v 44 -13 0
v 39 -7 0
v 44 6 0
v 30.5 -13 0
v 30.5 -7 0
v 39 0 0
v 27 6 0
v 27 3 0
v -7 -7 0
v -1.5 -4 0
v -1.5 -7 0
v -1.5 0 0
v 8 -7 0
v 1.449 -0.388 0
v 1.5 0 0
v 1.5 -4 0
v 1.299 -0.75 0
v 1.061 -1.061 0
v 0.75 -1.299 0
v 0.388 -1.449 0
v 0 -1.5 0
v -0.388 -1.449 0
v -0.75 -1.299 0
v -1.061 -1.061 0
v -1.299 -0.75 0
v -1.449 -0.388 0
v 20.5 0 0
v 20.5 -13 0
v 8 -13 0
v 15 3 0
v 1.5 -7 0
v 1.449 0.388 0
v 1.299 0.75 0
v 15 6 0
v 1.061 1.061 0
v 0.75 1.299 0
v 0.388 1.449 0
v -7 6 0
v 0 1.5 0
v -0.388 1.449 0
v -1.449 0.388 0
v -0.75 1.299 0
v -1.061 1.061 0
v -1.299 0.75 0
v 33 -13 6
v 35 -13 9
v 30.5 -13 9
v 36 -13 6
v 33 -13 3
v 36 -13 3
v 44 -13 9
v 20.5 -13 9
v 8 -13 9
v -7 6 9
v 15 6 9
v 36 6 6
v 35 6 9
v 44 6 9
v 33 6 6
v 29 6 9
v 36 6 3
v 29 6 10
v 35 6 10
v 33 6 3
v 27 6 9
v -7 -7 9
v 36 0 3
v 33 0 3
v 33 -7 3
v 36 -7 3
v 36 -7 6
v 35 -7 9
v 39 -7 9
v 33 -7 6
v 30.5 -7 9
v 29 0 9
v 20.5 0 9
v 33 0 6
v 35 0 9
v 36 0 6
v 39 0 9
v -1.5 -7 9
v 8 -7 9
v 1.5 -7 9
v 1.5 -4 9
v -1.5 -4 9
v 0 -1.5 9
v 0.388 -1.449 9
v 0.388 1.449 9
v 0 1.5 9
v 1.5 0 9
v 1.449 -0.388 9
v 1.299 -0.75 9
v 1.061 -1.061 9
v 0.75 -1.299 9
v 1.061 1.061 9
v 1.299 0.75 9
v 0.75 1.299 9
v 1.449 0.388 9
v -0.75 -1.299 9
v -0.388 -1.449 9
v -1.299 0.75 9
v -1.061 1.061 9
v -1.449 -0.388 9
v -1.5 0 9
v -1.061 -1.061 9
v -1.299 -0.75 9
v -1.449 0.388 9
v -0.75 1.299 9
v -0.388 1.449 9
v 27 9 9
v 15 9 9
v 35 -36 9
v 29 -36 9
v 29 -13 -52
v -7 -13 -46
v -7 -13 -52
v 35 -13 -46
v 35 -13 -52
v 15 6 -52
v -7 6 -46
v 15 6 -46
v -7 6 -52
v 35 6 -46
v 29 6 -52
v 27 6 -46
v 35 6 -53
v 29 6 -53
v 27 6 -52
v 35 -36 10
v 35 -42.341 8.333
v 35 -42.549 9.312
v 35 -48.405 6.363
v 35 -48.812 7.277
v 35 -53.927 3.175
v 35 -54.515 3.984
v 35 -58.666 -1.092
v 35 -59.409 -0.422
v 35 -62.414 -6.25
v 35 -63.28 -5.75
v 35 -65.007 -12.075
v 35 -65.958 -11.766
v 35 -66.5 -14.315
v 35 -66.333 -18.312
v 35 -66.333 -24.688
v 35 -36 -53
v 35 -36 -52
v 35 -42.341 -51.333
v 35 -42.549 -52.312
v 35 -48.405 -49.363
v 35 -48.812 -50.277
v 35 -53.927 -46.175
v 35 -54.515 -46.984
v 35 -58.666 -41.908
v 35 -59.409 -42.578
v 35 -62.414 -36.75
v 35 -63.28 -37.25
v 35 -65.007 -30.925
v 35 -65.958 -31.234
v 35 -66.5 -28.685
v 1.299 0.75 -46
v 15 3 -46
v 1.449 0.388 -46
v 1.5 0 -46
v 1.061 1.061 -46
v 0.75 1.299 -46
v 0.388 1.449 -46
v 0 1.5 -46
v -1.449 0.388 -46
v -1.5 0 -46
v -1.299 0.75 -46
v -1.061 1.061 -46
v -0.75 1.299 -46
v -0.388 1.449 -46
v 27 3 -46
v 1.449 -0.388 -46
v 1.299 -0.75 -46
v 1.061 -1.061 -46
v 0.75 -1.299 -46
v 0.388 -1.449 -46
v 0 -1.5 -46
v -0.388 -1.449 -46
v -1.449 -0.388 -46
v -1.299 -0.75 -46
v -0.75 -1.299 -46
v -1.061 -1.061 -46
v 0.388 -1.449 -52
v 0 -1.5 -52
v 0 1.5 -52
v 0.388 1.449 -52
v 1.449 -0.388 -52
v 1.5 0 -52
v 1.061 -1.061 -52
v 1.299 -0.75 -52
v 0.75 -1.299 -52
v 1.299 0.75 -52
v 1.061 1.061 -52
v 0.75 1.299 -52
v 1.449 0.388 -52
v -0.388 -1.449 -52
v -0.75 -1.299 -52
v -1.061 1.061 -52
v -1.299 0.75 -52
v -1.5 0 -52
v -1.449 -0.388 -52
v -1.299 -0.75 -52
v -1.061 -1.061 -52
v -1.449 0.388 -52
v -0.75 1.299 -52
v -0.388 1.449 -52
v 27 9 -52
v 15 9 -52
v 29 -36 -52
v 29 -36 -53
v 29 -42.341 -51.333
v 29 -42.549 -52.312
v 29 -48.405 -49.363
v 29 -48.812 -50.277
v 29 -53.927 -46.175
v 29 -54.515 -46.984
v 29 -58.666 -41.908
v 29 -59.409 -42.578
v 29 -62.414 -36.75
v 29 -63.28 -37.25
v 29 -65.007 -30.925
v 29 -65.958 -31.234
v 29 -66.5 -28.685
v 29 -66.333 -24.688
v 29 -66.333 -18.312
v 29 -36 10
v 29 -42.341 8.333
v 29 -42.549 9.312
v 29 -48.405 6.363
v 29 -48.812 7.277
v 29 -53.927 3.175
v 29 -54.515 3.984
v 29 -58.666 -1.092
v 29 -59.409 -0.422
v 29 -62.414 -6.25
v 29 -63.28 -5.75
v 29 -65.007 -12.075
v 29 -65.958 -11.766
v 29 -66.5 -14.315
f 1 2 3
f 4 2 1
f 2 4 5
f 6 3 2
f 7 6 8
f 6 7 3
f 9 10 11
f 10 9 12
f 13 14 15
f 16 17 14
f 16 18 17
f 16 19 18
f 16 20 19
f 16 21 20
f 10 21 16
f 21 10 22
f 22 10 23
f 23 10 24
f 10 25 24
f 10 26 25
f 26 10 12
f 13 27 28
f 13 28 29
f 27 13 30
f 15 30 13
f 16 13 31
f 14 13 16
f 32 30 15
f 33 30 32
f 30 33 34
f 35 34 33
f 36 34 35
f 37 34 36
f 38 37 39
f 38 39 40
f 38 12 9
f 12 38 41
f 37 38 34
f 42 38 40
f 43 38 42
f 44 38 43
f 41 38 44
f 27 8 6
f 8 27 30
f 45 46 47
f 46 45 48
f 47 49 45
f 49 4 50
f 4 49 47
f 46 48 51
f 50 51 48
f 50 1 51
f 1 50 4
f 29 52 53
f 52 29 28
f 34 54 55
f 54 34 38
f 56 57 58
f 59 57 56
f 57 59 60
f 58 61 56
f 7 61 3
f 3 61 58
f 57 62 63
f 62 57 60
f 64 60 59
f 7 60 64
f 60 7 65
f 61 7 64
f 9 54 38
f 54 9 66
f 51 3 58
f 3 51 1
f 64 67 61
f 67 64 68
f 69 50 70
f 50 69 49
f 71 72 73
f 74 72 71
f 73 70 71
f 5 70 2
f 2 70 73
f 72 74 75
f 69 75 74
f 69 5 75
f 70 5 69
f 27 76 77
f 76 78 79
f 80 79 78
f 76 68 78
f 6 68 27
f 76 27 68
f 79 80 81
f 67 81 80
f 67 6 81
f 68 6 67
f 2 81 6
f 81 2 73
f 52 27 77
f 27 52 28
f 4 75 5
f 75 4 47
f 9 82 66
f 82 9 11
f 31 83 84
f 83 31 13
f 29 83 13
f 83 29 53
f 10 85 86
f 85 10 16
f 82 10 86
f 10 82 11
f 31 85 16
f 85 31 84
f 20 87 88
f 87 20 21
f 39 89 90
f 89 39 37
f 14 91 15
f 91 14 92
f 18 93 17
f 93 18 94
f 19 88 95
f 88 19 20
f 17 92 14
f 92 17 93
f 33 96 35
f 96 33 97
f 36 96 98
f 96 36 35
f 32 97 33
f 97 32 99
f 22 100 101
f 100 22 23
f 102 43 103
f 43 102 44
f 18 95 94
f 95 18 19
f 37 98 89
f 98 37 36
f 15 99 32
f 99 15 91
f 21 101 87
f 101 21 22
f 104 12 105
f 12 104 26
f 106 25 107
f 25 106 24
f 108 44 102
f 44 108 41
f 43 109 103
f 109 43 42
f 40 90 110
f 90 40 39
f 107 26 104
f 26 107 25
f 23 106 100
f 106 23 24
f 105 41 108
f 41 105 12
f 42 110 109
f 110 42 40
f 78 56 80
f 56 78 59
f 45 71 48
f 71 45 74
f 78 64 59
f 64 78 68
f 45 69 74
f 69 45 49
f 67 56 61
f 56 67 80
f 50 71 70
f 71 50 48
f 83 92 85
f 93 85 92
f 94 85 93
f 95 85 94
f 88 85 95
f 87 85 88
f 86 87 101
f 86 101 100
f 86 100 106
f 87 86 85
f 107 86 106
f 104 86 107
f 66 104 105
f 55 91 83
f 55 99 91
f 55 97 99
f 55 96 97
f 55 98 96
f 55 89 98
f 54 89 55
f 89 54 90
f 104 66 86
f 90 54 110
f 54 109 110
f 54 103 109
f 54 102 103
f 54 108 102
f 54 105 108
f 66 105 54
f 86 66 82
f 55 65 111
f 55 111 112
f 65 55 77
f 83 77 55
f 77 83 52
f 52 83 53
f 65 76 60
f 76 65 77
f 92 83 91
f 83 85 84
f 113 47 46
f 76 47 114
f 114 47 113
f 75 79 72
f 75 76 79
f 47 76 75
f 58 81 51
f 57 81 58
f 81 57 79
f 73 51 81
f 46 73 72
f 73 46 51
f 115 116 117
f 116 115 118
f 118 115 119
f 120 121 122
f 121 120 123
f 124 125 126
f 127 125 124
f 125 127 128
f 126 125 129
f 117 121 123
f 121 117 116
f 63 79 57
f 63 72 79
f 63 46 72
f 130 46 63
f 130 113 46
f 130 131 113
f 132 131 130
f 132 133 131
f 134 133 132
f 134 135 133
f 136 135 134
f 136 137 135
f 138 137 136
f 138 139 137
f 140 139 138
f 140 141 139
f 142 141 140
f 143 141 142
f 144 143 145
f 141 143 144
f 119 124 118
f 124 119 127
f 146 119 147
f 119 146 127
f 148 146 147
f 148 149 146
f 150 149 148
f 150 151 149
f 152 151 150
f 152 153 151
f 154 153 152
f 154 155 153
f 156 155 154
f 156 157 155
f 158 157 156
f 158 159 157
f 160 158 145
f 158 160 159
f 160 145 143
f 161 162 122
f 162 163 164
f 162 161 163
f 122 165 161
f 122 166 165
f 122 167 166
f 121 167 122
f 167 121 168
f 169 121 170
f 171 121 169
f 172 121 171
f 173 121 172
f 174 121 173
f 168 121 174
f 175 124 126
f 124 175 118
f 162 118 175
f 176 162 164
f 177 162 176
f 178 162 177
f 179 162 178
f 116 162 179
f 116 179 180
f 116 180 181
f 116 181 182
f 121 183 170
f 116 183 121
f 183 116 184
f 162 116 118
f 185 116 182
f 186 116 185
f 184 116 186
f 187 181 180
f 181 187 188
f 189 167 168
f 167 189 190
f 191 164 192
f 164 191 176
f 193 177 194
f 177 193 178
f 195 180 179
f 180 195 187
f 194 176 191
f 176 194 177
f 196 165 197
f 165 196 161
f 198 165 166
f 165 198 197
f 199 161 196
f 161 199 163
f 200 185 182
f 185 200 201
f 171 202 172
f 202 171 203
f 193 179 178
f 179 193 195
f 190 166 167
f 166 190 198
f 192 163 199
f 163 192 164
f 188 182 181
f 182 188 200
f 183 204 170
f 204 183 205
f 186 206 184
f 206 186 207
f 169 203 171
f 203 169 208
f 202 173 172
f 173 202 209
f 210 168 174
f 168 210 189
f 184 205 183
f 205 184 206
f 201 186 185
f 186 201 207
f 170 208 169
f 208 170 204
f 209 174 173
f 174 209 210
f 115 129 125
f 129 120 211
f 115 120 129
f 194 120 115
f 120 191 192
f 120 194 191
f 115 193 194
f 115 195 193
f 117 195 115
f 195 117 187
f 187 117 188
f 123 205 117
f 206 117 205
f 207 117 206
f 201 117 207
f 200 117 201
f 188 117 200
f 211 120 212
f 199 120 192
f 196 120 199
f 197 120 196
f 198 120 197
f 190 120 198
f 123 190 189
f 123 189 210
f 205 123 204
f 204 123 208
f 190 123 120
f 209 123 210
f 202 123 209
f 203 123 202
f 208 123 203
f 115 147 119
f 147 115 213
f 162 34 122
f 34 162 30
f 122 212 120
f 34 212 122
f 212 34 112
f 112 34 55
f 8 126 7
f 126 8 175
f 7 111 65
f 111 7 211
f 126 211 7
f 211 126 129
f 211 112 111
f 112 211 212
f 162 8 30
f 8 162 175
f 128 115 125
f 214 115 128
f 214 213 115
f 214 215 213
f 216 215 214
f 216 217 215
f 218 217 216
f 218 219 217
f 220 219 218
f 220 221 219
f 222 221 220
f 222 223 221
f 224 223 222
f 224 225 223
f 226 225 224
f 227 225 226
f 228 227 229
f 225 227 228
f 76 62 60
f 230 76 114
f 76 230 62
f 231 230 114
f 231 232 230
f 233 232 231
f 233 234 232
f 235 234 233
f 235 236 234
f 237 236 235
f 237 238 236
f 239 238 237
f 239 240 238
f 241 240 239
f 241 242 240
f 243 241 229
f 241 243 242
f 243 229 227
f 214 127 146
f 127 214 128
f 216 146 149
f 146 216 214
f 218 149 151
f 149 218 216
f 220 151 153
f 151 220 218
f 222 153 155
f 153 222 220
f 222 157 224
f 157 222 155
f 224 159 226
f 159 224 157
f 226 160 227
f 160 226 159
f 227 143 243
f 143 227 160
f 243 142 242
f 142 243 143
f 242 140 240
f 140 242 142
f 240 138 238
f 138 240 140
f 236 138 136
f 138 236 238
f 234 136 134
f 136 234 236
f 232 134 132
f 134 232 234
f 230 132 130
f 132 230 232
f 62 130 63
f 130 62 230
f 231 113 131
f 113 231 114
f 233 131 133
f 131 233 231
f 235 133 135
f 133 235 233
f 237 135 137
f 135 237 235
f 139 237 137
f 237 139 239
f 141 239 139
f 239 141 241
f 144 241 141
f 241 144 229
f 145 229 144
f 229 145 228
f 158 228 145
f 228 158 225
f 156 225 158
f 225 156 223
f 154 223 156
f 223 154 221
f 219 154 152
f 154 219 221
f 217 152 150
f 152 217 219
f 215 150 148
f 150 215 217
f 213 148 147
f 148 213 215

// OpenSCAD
include <../main.scad>
$holeflg = false;
$chamfflg = false;

ASSY_RA();
